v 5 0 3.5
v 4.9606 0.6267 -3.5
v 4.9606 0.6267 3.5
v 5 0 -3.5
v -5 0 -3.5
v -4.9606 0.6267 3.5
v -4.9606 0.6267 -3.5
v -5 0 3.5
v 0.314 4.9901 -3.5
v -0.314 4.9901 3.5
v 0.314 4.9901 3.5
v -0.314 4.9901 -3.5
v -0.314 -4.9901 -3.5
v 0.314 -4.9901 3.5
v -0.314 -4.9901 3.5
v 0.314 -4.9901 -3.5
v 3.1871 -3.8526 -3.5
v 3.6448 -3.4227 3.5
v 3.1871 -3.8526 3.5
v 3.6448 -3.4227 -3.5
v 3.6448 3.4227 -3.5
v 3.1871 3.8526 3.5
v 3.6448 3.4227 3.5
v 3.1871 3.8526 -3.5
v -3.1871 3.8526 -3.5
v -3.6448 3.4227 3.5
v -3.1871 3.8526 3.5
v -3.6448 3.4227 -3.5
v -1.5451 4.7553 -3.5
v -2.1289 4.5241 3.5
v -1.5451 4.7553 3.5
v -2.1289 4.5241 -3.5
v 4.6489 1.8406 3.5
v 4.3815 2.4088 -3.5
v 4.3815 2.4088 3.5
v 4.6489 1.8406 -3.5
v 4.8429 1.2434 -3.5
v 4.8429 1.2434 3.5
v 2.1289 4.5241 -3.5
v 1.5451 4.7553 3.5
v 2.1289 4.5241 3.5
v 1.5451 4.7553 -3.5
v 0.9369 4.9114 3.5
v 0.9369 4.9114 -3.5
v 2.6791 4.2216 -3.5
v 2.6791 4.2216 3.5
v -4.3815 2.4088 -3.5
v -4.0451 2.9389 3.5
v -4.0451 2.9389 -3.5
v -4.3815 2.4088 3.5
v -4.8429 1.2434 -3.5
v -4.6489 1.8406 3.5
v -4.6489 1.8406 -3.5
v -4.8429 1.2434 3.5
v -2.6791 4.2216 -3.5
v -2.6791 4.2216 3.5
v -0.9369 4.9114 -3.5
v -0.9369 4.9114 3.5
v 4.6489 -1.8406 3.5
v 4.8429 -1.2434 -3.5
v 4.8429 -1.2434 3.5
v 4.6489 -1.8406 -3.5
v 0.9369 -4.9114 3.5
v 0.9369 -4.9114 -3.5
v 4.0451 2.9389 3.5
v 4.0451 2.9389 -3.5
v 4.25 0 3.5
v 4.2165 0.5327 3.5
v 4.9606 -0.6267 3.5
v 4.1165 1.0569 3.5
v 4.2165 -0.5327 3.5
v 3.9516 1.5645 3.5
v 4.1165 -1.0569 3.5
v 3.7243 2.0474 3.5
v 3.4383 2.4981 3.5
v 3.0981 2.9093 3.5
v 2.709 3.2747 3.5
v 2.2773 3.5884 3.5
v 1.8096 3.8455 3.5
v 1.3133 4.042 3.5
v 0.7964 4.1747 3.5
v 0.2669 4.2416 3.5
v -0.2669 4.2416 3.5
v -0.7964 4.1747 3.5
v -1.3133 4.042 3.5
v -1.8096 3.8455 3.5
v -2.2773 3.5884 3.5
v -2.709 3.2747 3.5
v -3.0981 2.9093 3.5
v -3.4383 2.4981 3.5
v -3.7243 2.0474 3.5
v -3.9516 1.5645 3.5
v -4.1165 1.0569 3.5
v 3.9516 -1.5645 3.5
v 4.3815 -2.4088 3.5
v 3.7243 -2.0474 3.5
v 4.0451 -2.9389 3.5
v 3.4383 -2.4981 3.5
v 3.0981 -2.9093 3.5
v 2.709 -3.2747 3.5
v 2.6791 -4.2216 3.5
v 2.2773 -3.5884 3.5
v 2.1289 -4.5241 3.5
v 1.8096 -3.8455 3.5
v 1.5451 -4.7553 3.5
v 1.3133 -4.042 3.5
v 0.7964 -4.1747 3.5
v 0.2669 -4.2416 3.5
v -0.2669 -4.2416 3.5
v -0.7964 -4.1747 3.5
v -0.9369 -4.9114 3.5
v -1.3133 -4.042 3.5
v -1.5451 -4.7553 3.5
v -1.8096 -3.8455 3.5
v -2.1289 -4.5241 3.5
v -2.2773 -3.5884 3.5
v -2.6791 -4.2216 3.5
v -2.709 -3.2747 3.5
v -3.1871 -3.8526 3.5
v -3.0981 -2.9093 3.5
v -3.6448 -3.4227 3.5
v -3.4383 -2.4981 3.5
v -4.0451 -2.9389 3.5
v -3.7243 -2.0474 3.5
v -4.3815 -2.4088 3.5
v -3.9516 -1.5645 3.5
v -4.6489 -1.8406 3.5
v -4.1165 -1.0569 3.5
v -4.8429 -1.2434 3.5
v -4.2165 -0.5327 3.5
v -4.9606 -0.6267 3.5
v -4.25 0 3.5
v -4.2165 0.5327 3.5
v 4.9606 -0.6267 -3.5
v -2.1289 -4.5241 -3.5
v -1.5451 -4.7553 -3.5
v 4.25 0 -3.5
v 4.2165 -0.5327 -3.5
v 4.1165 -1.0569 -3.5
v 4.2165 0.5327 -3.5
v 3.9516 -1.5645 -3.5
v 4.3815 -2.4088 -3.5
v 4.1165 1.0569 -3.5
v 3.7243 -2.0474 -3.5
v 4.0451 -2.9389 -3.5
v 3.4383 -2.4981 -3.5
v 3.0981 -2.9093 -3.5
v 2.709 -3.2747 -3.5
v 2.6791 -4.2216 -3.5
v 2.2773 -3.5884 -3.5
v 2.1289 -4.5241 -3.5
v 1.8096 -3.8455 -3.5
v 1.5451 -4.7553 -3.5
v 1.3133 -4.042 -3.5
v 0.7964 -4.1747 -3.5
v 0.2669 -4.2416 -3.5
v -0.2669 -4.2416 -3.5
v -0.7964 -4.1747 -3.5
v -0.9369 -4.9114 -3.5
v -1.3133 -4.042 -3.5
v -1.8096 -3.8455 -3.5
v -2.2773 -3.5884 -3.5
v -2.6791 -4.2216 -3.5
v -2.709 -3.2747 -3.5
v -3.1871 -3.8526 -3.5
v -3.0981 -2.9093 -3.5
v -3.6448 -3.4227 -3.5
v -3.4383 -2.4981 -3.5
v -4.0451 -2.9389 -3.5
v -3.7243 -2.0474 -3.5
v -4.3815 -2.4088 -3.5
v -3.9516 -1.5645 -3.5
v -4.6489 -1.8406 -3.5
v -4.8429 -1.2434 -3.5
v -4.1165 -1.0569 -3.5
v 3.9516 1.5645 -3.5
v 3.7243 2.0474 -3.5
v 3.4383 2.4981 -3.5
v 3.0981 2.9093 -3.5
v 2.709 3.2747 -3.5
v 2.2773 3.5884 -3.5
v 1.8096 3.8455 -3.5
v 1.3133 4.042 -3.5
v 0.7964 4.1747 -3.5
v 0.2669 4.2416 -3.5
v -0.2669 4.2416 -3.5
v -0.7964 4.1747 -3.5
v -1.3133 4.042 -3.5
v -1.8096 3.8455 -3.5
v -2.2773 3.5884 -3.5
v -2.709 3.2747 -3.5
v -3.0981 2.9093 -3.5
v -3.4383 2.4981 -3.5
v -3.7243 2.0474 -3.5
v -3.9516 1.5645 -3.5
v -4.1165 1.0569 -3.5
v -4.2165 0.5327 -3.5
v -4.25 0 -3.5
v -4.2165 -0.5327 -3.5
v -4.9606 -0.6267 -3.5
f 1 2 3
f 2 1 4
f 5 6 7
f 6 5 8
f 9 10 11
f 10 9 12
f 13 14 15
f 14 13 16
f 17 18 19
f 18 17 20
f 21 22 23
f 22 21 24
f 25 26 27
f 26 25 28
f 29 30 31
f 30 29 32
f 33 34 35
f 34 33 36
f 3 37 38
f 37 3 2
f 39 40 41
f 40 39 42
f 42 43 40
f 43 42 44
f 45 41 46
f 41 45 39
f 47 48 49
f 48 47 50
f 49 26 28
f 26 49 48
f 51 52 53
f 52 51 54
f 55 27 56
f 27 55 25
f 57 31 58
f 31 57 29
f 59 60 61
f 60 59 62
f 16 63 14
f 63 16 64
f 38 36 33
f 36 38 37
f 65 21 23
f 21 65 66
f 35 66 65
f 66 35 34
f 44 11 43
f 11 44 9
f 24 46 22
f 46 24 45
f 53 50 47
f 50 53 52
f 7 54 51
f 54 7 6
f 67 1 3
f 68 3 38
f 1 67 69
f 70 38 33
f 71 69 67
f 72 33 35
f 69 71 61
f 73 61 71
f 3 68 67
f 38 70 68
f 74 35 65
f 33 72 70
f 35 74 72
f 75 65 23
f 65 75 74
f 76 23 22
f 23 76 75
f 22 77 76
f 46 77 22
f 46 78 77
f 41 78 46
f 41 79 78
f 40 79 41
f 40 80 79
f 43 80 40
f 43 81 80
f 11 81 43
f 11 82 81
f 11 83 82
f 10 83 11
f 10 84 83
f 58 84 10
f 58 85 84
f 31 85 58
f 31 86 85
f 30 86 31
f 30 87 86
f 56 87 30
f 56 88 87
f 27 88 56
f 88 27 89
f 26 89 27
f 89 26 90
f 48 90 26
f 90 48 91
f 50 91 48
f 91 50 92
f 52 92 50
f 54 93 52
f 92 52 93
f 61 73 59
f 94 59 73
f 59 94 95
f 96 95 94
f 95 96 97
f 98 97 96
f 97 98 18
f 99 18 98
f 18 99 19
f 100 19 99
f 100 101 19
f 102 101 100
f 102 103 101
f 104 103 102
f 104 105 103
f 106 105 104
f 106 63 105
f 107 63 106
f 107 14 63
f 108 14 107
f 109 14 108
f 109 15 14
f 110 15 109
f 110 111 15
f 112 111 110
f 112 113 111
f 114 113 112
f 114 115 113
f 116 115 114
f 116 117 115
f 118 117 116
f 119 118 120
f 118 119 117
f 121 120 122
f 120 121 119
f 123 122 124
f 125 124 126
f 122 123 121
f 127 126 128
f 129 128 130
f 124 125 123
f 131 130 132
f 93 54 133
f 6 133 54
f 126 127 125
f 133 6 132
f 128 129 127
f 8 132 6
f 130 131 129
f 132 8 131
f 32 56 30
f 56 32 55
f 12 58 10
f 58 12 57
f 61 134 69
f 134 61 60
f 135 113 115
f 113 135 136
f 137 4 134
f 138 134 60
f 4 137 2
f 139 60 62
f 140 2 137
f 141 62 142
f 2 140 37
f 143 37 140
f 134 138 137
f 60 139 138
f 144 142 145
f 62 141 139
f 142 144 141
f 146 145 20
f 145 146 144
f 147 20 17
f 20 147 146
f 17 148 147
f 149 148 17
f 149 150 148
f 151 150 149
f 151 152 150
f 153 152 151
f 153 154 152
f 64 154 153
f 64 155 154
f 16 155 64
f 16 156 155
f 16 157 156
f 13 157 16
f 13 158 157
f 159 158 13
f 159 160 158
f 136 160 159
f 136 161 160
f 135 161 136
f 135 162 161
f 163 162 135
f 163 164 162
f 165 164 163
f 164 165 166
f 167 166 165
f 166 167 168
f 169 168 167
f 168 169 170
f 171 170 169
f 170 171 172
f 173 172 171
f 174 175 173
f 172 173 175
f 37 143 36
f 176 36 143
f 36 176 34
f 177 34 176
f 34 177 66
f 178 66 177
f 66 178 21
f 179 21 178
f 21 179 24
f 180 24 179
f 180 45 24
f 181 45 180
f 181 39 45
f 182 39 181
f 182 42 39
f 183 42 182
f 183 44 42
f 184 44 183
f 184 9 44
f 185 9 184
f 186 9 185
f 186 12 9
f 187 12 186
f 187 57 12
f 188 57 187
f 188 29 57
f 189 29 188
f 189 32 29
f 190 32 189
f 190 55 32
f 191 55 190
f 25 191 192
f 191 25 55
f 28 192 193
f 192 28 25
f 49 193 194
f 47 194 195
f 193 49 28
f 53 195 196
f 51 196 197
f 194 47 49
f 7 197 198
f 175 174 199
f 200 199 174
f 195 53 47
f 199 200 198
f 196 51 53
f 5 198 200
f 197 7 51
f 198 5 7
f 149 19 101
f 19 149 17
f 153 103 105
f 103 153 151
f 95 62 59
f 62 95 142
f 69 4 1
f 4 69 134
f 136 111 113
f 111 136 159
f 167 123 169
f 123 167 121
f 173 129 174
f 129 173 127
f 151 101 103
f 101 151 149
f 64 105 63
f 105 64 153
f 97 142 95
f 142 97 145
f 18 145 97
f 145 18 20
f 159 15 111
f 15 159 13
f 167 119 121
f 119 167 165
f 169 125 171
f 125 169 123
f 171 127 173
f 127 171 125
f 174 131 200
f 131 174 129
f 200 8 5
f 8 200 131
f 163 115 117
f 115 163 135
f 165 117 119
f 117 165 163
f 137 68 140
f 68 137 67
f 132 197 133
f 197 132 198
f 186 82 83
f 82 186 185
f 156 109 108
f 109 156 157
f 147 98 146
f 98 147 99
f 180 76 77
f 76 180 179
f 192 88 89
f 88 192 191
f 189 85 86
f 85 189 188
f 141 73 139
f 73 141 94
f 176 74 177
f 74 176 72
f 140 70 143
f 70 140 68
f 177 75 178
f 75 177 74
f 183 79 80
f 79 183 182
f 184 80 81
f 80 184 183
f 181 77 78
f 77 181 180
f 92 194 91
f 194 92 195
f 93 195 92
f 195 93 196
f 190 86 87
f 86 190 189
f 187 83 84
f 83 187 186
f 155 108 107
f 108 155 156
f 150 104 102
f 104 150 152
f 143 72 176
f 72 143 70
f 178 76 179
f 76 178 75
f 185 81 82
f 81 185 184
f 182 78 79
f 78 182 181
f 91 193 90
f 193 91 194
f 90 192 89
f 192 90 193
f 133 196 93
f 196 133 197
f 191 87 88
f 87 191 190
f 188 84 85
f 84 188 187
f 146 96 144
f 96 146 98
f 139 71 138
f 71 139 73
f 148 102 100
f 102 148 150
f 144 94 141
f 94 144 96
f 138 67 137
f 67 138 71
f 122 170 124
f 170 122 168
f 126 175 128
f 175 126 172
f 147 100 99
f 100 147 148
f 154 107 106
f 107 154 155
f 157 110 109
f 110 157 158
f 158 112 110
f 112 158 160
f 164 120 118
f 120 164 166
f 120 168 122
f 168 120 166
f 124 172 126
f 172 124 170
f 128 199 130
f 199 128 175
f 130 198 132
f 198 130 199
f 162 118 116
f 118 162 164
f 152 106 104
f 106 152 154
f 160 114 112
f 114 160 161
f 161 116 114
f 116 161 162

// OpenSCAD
$fn = 50;


difference() {
	union() {
		translate(v = [0, 0, -3.5000000000]) {
			cylinder(h = 7, r = 5.0000000000);
		}
	}
	union() {
		translate(v = [0, 0, -100.0000000000]) {
			cylinder(h = 200, r = 4.2500000000);
		}
	}
}
